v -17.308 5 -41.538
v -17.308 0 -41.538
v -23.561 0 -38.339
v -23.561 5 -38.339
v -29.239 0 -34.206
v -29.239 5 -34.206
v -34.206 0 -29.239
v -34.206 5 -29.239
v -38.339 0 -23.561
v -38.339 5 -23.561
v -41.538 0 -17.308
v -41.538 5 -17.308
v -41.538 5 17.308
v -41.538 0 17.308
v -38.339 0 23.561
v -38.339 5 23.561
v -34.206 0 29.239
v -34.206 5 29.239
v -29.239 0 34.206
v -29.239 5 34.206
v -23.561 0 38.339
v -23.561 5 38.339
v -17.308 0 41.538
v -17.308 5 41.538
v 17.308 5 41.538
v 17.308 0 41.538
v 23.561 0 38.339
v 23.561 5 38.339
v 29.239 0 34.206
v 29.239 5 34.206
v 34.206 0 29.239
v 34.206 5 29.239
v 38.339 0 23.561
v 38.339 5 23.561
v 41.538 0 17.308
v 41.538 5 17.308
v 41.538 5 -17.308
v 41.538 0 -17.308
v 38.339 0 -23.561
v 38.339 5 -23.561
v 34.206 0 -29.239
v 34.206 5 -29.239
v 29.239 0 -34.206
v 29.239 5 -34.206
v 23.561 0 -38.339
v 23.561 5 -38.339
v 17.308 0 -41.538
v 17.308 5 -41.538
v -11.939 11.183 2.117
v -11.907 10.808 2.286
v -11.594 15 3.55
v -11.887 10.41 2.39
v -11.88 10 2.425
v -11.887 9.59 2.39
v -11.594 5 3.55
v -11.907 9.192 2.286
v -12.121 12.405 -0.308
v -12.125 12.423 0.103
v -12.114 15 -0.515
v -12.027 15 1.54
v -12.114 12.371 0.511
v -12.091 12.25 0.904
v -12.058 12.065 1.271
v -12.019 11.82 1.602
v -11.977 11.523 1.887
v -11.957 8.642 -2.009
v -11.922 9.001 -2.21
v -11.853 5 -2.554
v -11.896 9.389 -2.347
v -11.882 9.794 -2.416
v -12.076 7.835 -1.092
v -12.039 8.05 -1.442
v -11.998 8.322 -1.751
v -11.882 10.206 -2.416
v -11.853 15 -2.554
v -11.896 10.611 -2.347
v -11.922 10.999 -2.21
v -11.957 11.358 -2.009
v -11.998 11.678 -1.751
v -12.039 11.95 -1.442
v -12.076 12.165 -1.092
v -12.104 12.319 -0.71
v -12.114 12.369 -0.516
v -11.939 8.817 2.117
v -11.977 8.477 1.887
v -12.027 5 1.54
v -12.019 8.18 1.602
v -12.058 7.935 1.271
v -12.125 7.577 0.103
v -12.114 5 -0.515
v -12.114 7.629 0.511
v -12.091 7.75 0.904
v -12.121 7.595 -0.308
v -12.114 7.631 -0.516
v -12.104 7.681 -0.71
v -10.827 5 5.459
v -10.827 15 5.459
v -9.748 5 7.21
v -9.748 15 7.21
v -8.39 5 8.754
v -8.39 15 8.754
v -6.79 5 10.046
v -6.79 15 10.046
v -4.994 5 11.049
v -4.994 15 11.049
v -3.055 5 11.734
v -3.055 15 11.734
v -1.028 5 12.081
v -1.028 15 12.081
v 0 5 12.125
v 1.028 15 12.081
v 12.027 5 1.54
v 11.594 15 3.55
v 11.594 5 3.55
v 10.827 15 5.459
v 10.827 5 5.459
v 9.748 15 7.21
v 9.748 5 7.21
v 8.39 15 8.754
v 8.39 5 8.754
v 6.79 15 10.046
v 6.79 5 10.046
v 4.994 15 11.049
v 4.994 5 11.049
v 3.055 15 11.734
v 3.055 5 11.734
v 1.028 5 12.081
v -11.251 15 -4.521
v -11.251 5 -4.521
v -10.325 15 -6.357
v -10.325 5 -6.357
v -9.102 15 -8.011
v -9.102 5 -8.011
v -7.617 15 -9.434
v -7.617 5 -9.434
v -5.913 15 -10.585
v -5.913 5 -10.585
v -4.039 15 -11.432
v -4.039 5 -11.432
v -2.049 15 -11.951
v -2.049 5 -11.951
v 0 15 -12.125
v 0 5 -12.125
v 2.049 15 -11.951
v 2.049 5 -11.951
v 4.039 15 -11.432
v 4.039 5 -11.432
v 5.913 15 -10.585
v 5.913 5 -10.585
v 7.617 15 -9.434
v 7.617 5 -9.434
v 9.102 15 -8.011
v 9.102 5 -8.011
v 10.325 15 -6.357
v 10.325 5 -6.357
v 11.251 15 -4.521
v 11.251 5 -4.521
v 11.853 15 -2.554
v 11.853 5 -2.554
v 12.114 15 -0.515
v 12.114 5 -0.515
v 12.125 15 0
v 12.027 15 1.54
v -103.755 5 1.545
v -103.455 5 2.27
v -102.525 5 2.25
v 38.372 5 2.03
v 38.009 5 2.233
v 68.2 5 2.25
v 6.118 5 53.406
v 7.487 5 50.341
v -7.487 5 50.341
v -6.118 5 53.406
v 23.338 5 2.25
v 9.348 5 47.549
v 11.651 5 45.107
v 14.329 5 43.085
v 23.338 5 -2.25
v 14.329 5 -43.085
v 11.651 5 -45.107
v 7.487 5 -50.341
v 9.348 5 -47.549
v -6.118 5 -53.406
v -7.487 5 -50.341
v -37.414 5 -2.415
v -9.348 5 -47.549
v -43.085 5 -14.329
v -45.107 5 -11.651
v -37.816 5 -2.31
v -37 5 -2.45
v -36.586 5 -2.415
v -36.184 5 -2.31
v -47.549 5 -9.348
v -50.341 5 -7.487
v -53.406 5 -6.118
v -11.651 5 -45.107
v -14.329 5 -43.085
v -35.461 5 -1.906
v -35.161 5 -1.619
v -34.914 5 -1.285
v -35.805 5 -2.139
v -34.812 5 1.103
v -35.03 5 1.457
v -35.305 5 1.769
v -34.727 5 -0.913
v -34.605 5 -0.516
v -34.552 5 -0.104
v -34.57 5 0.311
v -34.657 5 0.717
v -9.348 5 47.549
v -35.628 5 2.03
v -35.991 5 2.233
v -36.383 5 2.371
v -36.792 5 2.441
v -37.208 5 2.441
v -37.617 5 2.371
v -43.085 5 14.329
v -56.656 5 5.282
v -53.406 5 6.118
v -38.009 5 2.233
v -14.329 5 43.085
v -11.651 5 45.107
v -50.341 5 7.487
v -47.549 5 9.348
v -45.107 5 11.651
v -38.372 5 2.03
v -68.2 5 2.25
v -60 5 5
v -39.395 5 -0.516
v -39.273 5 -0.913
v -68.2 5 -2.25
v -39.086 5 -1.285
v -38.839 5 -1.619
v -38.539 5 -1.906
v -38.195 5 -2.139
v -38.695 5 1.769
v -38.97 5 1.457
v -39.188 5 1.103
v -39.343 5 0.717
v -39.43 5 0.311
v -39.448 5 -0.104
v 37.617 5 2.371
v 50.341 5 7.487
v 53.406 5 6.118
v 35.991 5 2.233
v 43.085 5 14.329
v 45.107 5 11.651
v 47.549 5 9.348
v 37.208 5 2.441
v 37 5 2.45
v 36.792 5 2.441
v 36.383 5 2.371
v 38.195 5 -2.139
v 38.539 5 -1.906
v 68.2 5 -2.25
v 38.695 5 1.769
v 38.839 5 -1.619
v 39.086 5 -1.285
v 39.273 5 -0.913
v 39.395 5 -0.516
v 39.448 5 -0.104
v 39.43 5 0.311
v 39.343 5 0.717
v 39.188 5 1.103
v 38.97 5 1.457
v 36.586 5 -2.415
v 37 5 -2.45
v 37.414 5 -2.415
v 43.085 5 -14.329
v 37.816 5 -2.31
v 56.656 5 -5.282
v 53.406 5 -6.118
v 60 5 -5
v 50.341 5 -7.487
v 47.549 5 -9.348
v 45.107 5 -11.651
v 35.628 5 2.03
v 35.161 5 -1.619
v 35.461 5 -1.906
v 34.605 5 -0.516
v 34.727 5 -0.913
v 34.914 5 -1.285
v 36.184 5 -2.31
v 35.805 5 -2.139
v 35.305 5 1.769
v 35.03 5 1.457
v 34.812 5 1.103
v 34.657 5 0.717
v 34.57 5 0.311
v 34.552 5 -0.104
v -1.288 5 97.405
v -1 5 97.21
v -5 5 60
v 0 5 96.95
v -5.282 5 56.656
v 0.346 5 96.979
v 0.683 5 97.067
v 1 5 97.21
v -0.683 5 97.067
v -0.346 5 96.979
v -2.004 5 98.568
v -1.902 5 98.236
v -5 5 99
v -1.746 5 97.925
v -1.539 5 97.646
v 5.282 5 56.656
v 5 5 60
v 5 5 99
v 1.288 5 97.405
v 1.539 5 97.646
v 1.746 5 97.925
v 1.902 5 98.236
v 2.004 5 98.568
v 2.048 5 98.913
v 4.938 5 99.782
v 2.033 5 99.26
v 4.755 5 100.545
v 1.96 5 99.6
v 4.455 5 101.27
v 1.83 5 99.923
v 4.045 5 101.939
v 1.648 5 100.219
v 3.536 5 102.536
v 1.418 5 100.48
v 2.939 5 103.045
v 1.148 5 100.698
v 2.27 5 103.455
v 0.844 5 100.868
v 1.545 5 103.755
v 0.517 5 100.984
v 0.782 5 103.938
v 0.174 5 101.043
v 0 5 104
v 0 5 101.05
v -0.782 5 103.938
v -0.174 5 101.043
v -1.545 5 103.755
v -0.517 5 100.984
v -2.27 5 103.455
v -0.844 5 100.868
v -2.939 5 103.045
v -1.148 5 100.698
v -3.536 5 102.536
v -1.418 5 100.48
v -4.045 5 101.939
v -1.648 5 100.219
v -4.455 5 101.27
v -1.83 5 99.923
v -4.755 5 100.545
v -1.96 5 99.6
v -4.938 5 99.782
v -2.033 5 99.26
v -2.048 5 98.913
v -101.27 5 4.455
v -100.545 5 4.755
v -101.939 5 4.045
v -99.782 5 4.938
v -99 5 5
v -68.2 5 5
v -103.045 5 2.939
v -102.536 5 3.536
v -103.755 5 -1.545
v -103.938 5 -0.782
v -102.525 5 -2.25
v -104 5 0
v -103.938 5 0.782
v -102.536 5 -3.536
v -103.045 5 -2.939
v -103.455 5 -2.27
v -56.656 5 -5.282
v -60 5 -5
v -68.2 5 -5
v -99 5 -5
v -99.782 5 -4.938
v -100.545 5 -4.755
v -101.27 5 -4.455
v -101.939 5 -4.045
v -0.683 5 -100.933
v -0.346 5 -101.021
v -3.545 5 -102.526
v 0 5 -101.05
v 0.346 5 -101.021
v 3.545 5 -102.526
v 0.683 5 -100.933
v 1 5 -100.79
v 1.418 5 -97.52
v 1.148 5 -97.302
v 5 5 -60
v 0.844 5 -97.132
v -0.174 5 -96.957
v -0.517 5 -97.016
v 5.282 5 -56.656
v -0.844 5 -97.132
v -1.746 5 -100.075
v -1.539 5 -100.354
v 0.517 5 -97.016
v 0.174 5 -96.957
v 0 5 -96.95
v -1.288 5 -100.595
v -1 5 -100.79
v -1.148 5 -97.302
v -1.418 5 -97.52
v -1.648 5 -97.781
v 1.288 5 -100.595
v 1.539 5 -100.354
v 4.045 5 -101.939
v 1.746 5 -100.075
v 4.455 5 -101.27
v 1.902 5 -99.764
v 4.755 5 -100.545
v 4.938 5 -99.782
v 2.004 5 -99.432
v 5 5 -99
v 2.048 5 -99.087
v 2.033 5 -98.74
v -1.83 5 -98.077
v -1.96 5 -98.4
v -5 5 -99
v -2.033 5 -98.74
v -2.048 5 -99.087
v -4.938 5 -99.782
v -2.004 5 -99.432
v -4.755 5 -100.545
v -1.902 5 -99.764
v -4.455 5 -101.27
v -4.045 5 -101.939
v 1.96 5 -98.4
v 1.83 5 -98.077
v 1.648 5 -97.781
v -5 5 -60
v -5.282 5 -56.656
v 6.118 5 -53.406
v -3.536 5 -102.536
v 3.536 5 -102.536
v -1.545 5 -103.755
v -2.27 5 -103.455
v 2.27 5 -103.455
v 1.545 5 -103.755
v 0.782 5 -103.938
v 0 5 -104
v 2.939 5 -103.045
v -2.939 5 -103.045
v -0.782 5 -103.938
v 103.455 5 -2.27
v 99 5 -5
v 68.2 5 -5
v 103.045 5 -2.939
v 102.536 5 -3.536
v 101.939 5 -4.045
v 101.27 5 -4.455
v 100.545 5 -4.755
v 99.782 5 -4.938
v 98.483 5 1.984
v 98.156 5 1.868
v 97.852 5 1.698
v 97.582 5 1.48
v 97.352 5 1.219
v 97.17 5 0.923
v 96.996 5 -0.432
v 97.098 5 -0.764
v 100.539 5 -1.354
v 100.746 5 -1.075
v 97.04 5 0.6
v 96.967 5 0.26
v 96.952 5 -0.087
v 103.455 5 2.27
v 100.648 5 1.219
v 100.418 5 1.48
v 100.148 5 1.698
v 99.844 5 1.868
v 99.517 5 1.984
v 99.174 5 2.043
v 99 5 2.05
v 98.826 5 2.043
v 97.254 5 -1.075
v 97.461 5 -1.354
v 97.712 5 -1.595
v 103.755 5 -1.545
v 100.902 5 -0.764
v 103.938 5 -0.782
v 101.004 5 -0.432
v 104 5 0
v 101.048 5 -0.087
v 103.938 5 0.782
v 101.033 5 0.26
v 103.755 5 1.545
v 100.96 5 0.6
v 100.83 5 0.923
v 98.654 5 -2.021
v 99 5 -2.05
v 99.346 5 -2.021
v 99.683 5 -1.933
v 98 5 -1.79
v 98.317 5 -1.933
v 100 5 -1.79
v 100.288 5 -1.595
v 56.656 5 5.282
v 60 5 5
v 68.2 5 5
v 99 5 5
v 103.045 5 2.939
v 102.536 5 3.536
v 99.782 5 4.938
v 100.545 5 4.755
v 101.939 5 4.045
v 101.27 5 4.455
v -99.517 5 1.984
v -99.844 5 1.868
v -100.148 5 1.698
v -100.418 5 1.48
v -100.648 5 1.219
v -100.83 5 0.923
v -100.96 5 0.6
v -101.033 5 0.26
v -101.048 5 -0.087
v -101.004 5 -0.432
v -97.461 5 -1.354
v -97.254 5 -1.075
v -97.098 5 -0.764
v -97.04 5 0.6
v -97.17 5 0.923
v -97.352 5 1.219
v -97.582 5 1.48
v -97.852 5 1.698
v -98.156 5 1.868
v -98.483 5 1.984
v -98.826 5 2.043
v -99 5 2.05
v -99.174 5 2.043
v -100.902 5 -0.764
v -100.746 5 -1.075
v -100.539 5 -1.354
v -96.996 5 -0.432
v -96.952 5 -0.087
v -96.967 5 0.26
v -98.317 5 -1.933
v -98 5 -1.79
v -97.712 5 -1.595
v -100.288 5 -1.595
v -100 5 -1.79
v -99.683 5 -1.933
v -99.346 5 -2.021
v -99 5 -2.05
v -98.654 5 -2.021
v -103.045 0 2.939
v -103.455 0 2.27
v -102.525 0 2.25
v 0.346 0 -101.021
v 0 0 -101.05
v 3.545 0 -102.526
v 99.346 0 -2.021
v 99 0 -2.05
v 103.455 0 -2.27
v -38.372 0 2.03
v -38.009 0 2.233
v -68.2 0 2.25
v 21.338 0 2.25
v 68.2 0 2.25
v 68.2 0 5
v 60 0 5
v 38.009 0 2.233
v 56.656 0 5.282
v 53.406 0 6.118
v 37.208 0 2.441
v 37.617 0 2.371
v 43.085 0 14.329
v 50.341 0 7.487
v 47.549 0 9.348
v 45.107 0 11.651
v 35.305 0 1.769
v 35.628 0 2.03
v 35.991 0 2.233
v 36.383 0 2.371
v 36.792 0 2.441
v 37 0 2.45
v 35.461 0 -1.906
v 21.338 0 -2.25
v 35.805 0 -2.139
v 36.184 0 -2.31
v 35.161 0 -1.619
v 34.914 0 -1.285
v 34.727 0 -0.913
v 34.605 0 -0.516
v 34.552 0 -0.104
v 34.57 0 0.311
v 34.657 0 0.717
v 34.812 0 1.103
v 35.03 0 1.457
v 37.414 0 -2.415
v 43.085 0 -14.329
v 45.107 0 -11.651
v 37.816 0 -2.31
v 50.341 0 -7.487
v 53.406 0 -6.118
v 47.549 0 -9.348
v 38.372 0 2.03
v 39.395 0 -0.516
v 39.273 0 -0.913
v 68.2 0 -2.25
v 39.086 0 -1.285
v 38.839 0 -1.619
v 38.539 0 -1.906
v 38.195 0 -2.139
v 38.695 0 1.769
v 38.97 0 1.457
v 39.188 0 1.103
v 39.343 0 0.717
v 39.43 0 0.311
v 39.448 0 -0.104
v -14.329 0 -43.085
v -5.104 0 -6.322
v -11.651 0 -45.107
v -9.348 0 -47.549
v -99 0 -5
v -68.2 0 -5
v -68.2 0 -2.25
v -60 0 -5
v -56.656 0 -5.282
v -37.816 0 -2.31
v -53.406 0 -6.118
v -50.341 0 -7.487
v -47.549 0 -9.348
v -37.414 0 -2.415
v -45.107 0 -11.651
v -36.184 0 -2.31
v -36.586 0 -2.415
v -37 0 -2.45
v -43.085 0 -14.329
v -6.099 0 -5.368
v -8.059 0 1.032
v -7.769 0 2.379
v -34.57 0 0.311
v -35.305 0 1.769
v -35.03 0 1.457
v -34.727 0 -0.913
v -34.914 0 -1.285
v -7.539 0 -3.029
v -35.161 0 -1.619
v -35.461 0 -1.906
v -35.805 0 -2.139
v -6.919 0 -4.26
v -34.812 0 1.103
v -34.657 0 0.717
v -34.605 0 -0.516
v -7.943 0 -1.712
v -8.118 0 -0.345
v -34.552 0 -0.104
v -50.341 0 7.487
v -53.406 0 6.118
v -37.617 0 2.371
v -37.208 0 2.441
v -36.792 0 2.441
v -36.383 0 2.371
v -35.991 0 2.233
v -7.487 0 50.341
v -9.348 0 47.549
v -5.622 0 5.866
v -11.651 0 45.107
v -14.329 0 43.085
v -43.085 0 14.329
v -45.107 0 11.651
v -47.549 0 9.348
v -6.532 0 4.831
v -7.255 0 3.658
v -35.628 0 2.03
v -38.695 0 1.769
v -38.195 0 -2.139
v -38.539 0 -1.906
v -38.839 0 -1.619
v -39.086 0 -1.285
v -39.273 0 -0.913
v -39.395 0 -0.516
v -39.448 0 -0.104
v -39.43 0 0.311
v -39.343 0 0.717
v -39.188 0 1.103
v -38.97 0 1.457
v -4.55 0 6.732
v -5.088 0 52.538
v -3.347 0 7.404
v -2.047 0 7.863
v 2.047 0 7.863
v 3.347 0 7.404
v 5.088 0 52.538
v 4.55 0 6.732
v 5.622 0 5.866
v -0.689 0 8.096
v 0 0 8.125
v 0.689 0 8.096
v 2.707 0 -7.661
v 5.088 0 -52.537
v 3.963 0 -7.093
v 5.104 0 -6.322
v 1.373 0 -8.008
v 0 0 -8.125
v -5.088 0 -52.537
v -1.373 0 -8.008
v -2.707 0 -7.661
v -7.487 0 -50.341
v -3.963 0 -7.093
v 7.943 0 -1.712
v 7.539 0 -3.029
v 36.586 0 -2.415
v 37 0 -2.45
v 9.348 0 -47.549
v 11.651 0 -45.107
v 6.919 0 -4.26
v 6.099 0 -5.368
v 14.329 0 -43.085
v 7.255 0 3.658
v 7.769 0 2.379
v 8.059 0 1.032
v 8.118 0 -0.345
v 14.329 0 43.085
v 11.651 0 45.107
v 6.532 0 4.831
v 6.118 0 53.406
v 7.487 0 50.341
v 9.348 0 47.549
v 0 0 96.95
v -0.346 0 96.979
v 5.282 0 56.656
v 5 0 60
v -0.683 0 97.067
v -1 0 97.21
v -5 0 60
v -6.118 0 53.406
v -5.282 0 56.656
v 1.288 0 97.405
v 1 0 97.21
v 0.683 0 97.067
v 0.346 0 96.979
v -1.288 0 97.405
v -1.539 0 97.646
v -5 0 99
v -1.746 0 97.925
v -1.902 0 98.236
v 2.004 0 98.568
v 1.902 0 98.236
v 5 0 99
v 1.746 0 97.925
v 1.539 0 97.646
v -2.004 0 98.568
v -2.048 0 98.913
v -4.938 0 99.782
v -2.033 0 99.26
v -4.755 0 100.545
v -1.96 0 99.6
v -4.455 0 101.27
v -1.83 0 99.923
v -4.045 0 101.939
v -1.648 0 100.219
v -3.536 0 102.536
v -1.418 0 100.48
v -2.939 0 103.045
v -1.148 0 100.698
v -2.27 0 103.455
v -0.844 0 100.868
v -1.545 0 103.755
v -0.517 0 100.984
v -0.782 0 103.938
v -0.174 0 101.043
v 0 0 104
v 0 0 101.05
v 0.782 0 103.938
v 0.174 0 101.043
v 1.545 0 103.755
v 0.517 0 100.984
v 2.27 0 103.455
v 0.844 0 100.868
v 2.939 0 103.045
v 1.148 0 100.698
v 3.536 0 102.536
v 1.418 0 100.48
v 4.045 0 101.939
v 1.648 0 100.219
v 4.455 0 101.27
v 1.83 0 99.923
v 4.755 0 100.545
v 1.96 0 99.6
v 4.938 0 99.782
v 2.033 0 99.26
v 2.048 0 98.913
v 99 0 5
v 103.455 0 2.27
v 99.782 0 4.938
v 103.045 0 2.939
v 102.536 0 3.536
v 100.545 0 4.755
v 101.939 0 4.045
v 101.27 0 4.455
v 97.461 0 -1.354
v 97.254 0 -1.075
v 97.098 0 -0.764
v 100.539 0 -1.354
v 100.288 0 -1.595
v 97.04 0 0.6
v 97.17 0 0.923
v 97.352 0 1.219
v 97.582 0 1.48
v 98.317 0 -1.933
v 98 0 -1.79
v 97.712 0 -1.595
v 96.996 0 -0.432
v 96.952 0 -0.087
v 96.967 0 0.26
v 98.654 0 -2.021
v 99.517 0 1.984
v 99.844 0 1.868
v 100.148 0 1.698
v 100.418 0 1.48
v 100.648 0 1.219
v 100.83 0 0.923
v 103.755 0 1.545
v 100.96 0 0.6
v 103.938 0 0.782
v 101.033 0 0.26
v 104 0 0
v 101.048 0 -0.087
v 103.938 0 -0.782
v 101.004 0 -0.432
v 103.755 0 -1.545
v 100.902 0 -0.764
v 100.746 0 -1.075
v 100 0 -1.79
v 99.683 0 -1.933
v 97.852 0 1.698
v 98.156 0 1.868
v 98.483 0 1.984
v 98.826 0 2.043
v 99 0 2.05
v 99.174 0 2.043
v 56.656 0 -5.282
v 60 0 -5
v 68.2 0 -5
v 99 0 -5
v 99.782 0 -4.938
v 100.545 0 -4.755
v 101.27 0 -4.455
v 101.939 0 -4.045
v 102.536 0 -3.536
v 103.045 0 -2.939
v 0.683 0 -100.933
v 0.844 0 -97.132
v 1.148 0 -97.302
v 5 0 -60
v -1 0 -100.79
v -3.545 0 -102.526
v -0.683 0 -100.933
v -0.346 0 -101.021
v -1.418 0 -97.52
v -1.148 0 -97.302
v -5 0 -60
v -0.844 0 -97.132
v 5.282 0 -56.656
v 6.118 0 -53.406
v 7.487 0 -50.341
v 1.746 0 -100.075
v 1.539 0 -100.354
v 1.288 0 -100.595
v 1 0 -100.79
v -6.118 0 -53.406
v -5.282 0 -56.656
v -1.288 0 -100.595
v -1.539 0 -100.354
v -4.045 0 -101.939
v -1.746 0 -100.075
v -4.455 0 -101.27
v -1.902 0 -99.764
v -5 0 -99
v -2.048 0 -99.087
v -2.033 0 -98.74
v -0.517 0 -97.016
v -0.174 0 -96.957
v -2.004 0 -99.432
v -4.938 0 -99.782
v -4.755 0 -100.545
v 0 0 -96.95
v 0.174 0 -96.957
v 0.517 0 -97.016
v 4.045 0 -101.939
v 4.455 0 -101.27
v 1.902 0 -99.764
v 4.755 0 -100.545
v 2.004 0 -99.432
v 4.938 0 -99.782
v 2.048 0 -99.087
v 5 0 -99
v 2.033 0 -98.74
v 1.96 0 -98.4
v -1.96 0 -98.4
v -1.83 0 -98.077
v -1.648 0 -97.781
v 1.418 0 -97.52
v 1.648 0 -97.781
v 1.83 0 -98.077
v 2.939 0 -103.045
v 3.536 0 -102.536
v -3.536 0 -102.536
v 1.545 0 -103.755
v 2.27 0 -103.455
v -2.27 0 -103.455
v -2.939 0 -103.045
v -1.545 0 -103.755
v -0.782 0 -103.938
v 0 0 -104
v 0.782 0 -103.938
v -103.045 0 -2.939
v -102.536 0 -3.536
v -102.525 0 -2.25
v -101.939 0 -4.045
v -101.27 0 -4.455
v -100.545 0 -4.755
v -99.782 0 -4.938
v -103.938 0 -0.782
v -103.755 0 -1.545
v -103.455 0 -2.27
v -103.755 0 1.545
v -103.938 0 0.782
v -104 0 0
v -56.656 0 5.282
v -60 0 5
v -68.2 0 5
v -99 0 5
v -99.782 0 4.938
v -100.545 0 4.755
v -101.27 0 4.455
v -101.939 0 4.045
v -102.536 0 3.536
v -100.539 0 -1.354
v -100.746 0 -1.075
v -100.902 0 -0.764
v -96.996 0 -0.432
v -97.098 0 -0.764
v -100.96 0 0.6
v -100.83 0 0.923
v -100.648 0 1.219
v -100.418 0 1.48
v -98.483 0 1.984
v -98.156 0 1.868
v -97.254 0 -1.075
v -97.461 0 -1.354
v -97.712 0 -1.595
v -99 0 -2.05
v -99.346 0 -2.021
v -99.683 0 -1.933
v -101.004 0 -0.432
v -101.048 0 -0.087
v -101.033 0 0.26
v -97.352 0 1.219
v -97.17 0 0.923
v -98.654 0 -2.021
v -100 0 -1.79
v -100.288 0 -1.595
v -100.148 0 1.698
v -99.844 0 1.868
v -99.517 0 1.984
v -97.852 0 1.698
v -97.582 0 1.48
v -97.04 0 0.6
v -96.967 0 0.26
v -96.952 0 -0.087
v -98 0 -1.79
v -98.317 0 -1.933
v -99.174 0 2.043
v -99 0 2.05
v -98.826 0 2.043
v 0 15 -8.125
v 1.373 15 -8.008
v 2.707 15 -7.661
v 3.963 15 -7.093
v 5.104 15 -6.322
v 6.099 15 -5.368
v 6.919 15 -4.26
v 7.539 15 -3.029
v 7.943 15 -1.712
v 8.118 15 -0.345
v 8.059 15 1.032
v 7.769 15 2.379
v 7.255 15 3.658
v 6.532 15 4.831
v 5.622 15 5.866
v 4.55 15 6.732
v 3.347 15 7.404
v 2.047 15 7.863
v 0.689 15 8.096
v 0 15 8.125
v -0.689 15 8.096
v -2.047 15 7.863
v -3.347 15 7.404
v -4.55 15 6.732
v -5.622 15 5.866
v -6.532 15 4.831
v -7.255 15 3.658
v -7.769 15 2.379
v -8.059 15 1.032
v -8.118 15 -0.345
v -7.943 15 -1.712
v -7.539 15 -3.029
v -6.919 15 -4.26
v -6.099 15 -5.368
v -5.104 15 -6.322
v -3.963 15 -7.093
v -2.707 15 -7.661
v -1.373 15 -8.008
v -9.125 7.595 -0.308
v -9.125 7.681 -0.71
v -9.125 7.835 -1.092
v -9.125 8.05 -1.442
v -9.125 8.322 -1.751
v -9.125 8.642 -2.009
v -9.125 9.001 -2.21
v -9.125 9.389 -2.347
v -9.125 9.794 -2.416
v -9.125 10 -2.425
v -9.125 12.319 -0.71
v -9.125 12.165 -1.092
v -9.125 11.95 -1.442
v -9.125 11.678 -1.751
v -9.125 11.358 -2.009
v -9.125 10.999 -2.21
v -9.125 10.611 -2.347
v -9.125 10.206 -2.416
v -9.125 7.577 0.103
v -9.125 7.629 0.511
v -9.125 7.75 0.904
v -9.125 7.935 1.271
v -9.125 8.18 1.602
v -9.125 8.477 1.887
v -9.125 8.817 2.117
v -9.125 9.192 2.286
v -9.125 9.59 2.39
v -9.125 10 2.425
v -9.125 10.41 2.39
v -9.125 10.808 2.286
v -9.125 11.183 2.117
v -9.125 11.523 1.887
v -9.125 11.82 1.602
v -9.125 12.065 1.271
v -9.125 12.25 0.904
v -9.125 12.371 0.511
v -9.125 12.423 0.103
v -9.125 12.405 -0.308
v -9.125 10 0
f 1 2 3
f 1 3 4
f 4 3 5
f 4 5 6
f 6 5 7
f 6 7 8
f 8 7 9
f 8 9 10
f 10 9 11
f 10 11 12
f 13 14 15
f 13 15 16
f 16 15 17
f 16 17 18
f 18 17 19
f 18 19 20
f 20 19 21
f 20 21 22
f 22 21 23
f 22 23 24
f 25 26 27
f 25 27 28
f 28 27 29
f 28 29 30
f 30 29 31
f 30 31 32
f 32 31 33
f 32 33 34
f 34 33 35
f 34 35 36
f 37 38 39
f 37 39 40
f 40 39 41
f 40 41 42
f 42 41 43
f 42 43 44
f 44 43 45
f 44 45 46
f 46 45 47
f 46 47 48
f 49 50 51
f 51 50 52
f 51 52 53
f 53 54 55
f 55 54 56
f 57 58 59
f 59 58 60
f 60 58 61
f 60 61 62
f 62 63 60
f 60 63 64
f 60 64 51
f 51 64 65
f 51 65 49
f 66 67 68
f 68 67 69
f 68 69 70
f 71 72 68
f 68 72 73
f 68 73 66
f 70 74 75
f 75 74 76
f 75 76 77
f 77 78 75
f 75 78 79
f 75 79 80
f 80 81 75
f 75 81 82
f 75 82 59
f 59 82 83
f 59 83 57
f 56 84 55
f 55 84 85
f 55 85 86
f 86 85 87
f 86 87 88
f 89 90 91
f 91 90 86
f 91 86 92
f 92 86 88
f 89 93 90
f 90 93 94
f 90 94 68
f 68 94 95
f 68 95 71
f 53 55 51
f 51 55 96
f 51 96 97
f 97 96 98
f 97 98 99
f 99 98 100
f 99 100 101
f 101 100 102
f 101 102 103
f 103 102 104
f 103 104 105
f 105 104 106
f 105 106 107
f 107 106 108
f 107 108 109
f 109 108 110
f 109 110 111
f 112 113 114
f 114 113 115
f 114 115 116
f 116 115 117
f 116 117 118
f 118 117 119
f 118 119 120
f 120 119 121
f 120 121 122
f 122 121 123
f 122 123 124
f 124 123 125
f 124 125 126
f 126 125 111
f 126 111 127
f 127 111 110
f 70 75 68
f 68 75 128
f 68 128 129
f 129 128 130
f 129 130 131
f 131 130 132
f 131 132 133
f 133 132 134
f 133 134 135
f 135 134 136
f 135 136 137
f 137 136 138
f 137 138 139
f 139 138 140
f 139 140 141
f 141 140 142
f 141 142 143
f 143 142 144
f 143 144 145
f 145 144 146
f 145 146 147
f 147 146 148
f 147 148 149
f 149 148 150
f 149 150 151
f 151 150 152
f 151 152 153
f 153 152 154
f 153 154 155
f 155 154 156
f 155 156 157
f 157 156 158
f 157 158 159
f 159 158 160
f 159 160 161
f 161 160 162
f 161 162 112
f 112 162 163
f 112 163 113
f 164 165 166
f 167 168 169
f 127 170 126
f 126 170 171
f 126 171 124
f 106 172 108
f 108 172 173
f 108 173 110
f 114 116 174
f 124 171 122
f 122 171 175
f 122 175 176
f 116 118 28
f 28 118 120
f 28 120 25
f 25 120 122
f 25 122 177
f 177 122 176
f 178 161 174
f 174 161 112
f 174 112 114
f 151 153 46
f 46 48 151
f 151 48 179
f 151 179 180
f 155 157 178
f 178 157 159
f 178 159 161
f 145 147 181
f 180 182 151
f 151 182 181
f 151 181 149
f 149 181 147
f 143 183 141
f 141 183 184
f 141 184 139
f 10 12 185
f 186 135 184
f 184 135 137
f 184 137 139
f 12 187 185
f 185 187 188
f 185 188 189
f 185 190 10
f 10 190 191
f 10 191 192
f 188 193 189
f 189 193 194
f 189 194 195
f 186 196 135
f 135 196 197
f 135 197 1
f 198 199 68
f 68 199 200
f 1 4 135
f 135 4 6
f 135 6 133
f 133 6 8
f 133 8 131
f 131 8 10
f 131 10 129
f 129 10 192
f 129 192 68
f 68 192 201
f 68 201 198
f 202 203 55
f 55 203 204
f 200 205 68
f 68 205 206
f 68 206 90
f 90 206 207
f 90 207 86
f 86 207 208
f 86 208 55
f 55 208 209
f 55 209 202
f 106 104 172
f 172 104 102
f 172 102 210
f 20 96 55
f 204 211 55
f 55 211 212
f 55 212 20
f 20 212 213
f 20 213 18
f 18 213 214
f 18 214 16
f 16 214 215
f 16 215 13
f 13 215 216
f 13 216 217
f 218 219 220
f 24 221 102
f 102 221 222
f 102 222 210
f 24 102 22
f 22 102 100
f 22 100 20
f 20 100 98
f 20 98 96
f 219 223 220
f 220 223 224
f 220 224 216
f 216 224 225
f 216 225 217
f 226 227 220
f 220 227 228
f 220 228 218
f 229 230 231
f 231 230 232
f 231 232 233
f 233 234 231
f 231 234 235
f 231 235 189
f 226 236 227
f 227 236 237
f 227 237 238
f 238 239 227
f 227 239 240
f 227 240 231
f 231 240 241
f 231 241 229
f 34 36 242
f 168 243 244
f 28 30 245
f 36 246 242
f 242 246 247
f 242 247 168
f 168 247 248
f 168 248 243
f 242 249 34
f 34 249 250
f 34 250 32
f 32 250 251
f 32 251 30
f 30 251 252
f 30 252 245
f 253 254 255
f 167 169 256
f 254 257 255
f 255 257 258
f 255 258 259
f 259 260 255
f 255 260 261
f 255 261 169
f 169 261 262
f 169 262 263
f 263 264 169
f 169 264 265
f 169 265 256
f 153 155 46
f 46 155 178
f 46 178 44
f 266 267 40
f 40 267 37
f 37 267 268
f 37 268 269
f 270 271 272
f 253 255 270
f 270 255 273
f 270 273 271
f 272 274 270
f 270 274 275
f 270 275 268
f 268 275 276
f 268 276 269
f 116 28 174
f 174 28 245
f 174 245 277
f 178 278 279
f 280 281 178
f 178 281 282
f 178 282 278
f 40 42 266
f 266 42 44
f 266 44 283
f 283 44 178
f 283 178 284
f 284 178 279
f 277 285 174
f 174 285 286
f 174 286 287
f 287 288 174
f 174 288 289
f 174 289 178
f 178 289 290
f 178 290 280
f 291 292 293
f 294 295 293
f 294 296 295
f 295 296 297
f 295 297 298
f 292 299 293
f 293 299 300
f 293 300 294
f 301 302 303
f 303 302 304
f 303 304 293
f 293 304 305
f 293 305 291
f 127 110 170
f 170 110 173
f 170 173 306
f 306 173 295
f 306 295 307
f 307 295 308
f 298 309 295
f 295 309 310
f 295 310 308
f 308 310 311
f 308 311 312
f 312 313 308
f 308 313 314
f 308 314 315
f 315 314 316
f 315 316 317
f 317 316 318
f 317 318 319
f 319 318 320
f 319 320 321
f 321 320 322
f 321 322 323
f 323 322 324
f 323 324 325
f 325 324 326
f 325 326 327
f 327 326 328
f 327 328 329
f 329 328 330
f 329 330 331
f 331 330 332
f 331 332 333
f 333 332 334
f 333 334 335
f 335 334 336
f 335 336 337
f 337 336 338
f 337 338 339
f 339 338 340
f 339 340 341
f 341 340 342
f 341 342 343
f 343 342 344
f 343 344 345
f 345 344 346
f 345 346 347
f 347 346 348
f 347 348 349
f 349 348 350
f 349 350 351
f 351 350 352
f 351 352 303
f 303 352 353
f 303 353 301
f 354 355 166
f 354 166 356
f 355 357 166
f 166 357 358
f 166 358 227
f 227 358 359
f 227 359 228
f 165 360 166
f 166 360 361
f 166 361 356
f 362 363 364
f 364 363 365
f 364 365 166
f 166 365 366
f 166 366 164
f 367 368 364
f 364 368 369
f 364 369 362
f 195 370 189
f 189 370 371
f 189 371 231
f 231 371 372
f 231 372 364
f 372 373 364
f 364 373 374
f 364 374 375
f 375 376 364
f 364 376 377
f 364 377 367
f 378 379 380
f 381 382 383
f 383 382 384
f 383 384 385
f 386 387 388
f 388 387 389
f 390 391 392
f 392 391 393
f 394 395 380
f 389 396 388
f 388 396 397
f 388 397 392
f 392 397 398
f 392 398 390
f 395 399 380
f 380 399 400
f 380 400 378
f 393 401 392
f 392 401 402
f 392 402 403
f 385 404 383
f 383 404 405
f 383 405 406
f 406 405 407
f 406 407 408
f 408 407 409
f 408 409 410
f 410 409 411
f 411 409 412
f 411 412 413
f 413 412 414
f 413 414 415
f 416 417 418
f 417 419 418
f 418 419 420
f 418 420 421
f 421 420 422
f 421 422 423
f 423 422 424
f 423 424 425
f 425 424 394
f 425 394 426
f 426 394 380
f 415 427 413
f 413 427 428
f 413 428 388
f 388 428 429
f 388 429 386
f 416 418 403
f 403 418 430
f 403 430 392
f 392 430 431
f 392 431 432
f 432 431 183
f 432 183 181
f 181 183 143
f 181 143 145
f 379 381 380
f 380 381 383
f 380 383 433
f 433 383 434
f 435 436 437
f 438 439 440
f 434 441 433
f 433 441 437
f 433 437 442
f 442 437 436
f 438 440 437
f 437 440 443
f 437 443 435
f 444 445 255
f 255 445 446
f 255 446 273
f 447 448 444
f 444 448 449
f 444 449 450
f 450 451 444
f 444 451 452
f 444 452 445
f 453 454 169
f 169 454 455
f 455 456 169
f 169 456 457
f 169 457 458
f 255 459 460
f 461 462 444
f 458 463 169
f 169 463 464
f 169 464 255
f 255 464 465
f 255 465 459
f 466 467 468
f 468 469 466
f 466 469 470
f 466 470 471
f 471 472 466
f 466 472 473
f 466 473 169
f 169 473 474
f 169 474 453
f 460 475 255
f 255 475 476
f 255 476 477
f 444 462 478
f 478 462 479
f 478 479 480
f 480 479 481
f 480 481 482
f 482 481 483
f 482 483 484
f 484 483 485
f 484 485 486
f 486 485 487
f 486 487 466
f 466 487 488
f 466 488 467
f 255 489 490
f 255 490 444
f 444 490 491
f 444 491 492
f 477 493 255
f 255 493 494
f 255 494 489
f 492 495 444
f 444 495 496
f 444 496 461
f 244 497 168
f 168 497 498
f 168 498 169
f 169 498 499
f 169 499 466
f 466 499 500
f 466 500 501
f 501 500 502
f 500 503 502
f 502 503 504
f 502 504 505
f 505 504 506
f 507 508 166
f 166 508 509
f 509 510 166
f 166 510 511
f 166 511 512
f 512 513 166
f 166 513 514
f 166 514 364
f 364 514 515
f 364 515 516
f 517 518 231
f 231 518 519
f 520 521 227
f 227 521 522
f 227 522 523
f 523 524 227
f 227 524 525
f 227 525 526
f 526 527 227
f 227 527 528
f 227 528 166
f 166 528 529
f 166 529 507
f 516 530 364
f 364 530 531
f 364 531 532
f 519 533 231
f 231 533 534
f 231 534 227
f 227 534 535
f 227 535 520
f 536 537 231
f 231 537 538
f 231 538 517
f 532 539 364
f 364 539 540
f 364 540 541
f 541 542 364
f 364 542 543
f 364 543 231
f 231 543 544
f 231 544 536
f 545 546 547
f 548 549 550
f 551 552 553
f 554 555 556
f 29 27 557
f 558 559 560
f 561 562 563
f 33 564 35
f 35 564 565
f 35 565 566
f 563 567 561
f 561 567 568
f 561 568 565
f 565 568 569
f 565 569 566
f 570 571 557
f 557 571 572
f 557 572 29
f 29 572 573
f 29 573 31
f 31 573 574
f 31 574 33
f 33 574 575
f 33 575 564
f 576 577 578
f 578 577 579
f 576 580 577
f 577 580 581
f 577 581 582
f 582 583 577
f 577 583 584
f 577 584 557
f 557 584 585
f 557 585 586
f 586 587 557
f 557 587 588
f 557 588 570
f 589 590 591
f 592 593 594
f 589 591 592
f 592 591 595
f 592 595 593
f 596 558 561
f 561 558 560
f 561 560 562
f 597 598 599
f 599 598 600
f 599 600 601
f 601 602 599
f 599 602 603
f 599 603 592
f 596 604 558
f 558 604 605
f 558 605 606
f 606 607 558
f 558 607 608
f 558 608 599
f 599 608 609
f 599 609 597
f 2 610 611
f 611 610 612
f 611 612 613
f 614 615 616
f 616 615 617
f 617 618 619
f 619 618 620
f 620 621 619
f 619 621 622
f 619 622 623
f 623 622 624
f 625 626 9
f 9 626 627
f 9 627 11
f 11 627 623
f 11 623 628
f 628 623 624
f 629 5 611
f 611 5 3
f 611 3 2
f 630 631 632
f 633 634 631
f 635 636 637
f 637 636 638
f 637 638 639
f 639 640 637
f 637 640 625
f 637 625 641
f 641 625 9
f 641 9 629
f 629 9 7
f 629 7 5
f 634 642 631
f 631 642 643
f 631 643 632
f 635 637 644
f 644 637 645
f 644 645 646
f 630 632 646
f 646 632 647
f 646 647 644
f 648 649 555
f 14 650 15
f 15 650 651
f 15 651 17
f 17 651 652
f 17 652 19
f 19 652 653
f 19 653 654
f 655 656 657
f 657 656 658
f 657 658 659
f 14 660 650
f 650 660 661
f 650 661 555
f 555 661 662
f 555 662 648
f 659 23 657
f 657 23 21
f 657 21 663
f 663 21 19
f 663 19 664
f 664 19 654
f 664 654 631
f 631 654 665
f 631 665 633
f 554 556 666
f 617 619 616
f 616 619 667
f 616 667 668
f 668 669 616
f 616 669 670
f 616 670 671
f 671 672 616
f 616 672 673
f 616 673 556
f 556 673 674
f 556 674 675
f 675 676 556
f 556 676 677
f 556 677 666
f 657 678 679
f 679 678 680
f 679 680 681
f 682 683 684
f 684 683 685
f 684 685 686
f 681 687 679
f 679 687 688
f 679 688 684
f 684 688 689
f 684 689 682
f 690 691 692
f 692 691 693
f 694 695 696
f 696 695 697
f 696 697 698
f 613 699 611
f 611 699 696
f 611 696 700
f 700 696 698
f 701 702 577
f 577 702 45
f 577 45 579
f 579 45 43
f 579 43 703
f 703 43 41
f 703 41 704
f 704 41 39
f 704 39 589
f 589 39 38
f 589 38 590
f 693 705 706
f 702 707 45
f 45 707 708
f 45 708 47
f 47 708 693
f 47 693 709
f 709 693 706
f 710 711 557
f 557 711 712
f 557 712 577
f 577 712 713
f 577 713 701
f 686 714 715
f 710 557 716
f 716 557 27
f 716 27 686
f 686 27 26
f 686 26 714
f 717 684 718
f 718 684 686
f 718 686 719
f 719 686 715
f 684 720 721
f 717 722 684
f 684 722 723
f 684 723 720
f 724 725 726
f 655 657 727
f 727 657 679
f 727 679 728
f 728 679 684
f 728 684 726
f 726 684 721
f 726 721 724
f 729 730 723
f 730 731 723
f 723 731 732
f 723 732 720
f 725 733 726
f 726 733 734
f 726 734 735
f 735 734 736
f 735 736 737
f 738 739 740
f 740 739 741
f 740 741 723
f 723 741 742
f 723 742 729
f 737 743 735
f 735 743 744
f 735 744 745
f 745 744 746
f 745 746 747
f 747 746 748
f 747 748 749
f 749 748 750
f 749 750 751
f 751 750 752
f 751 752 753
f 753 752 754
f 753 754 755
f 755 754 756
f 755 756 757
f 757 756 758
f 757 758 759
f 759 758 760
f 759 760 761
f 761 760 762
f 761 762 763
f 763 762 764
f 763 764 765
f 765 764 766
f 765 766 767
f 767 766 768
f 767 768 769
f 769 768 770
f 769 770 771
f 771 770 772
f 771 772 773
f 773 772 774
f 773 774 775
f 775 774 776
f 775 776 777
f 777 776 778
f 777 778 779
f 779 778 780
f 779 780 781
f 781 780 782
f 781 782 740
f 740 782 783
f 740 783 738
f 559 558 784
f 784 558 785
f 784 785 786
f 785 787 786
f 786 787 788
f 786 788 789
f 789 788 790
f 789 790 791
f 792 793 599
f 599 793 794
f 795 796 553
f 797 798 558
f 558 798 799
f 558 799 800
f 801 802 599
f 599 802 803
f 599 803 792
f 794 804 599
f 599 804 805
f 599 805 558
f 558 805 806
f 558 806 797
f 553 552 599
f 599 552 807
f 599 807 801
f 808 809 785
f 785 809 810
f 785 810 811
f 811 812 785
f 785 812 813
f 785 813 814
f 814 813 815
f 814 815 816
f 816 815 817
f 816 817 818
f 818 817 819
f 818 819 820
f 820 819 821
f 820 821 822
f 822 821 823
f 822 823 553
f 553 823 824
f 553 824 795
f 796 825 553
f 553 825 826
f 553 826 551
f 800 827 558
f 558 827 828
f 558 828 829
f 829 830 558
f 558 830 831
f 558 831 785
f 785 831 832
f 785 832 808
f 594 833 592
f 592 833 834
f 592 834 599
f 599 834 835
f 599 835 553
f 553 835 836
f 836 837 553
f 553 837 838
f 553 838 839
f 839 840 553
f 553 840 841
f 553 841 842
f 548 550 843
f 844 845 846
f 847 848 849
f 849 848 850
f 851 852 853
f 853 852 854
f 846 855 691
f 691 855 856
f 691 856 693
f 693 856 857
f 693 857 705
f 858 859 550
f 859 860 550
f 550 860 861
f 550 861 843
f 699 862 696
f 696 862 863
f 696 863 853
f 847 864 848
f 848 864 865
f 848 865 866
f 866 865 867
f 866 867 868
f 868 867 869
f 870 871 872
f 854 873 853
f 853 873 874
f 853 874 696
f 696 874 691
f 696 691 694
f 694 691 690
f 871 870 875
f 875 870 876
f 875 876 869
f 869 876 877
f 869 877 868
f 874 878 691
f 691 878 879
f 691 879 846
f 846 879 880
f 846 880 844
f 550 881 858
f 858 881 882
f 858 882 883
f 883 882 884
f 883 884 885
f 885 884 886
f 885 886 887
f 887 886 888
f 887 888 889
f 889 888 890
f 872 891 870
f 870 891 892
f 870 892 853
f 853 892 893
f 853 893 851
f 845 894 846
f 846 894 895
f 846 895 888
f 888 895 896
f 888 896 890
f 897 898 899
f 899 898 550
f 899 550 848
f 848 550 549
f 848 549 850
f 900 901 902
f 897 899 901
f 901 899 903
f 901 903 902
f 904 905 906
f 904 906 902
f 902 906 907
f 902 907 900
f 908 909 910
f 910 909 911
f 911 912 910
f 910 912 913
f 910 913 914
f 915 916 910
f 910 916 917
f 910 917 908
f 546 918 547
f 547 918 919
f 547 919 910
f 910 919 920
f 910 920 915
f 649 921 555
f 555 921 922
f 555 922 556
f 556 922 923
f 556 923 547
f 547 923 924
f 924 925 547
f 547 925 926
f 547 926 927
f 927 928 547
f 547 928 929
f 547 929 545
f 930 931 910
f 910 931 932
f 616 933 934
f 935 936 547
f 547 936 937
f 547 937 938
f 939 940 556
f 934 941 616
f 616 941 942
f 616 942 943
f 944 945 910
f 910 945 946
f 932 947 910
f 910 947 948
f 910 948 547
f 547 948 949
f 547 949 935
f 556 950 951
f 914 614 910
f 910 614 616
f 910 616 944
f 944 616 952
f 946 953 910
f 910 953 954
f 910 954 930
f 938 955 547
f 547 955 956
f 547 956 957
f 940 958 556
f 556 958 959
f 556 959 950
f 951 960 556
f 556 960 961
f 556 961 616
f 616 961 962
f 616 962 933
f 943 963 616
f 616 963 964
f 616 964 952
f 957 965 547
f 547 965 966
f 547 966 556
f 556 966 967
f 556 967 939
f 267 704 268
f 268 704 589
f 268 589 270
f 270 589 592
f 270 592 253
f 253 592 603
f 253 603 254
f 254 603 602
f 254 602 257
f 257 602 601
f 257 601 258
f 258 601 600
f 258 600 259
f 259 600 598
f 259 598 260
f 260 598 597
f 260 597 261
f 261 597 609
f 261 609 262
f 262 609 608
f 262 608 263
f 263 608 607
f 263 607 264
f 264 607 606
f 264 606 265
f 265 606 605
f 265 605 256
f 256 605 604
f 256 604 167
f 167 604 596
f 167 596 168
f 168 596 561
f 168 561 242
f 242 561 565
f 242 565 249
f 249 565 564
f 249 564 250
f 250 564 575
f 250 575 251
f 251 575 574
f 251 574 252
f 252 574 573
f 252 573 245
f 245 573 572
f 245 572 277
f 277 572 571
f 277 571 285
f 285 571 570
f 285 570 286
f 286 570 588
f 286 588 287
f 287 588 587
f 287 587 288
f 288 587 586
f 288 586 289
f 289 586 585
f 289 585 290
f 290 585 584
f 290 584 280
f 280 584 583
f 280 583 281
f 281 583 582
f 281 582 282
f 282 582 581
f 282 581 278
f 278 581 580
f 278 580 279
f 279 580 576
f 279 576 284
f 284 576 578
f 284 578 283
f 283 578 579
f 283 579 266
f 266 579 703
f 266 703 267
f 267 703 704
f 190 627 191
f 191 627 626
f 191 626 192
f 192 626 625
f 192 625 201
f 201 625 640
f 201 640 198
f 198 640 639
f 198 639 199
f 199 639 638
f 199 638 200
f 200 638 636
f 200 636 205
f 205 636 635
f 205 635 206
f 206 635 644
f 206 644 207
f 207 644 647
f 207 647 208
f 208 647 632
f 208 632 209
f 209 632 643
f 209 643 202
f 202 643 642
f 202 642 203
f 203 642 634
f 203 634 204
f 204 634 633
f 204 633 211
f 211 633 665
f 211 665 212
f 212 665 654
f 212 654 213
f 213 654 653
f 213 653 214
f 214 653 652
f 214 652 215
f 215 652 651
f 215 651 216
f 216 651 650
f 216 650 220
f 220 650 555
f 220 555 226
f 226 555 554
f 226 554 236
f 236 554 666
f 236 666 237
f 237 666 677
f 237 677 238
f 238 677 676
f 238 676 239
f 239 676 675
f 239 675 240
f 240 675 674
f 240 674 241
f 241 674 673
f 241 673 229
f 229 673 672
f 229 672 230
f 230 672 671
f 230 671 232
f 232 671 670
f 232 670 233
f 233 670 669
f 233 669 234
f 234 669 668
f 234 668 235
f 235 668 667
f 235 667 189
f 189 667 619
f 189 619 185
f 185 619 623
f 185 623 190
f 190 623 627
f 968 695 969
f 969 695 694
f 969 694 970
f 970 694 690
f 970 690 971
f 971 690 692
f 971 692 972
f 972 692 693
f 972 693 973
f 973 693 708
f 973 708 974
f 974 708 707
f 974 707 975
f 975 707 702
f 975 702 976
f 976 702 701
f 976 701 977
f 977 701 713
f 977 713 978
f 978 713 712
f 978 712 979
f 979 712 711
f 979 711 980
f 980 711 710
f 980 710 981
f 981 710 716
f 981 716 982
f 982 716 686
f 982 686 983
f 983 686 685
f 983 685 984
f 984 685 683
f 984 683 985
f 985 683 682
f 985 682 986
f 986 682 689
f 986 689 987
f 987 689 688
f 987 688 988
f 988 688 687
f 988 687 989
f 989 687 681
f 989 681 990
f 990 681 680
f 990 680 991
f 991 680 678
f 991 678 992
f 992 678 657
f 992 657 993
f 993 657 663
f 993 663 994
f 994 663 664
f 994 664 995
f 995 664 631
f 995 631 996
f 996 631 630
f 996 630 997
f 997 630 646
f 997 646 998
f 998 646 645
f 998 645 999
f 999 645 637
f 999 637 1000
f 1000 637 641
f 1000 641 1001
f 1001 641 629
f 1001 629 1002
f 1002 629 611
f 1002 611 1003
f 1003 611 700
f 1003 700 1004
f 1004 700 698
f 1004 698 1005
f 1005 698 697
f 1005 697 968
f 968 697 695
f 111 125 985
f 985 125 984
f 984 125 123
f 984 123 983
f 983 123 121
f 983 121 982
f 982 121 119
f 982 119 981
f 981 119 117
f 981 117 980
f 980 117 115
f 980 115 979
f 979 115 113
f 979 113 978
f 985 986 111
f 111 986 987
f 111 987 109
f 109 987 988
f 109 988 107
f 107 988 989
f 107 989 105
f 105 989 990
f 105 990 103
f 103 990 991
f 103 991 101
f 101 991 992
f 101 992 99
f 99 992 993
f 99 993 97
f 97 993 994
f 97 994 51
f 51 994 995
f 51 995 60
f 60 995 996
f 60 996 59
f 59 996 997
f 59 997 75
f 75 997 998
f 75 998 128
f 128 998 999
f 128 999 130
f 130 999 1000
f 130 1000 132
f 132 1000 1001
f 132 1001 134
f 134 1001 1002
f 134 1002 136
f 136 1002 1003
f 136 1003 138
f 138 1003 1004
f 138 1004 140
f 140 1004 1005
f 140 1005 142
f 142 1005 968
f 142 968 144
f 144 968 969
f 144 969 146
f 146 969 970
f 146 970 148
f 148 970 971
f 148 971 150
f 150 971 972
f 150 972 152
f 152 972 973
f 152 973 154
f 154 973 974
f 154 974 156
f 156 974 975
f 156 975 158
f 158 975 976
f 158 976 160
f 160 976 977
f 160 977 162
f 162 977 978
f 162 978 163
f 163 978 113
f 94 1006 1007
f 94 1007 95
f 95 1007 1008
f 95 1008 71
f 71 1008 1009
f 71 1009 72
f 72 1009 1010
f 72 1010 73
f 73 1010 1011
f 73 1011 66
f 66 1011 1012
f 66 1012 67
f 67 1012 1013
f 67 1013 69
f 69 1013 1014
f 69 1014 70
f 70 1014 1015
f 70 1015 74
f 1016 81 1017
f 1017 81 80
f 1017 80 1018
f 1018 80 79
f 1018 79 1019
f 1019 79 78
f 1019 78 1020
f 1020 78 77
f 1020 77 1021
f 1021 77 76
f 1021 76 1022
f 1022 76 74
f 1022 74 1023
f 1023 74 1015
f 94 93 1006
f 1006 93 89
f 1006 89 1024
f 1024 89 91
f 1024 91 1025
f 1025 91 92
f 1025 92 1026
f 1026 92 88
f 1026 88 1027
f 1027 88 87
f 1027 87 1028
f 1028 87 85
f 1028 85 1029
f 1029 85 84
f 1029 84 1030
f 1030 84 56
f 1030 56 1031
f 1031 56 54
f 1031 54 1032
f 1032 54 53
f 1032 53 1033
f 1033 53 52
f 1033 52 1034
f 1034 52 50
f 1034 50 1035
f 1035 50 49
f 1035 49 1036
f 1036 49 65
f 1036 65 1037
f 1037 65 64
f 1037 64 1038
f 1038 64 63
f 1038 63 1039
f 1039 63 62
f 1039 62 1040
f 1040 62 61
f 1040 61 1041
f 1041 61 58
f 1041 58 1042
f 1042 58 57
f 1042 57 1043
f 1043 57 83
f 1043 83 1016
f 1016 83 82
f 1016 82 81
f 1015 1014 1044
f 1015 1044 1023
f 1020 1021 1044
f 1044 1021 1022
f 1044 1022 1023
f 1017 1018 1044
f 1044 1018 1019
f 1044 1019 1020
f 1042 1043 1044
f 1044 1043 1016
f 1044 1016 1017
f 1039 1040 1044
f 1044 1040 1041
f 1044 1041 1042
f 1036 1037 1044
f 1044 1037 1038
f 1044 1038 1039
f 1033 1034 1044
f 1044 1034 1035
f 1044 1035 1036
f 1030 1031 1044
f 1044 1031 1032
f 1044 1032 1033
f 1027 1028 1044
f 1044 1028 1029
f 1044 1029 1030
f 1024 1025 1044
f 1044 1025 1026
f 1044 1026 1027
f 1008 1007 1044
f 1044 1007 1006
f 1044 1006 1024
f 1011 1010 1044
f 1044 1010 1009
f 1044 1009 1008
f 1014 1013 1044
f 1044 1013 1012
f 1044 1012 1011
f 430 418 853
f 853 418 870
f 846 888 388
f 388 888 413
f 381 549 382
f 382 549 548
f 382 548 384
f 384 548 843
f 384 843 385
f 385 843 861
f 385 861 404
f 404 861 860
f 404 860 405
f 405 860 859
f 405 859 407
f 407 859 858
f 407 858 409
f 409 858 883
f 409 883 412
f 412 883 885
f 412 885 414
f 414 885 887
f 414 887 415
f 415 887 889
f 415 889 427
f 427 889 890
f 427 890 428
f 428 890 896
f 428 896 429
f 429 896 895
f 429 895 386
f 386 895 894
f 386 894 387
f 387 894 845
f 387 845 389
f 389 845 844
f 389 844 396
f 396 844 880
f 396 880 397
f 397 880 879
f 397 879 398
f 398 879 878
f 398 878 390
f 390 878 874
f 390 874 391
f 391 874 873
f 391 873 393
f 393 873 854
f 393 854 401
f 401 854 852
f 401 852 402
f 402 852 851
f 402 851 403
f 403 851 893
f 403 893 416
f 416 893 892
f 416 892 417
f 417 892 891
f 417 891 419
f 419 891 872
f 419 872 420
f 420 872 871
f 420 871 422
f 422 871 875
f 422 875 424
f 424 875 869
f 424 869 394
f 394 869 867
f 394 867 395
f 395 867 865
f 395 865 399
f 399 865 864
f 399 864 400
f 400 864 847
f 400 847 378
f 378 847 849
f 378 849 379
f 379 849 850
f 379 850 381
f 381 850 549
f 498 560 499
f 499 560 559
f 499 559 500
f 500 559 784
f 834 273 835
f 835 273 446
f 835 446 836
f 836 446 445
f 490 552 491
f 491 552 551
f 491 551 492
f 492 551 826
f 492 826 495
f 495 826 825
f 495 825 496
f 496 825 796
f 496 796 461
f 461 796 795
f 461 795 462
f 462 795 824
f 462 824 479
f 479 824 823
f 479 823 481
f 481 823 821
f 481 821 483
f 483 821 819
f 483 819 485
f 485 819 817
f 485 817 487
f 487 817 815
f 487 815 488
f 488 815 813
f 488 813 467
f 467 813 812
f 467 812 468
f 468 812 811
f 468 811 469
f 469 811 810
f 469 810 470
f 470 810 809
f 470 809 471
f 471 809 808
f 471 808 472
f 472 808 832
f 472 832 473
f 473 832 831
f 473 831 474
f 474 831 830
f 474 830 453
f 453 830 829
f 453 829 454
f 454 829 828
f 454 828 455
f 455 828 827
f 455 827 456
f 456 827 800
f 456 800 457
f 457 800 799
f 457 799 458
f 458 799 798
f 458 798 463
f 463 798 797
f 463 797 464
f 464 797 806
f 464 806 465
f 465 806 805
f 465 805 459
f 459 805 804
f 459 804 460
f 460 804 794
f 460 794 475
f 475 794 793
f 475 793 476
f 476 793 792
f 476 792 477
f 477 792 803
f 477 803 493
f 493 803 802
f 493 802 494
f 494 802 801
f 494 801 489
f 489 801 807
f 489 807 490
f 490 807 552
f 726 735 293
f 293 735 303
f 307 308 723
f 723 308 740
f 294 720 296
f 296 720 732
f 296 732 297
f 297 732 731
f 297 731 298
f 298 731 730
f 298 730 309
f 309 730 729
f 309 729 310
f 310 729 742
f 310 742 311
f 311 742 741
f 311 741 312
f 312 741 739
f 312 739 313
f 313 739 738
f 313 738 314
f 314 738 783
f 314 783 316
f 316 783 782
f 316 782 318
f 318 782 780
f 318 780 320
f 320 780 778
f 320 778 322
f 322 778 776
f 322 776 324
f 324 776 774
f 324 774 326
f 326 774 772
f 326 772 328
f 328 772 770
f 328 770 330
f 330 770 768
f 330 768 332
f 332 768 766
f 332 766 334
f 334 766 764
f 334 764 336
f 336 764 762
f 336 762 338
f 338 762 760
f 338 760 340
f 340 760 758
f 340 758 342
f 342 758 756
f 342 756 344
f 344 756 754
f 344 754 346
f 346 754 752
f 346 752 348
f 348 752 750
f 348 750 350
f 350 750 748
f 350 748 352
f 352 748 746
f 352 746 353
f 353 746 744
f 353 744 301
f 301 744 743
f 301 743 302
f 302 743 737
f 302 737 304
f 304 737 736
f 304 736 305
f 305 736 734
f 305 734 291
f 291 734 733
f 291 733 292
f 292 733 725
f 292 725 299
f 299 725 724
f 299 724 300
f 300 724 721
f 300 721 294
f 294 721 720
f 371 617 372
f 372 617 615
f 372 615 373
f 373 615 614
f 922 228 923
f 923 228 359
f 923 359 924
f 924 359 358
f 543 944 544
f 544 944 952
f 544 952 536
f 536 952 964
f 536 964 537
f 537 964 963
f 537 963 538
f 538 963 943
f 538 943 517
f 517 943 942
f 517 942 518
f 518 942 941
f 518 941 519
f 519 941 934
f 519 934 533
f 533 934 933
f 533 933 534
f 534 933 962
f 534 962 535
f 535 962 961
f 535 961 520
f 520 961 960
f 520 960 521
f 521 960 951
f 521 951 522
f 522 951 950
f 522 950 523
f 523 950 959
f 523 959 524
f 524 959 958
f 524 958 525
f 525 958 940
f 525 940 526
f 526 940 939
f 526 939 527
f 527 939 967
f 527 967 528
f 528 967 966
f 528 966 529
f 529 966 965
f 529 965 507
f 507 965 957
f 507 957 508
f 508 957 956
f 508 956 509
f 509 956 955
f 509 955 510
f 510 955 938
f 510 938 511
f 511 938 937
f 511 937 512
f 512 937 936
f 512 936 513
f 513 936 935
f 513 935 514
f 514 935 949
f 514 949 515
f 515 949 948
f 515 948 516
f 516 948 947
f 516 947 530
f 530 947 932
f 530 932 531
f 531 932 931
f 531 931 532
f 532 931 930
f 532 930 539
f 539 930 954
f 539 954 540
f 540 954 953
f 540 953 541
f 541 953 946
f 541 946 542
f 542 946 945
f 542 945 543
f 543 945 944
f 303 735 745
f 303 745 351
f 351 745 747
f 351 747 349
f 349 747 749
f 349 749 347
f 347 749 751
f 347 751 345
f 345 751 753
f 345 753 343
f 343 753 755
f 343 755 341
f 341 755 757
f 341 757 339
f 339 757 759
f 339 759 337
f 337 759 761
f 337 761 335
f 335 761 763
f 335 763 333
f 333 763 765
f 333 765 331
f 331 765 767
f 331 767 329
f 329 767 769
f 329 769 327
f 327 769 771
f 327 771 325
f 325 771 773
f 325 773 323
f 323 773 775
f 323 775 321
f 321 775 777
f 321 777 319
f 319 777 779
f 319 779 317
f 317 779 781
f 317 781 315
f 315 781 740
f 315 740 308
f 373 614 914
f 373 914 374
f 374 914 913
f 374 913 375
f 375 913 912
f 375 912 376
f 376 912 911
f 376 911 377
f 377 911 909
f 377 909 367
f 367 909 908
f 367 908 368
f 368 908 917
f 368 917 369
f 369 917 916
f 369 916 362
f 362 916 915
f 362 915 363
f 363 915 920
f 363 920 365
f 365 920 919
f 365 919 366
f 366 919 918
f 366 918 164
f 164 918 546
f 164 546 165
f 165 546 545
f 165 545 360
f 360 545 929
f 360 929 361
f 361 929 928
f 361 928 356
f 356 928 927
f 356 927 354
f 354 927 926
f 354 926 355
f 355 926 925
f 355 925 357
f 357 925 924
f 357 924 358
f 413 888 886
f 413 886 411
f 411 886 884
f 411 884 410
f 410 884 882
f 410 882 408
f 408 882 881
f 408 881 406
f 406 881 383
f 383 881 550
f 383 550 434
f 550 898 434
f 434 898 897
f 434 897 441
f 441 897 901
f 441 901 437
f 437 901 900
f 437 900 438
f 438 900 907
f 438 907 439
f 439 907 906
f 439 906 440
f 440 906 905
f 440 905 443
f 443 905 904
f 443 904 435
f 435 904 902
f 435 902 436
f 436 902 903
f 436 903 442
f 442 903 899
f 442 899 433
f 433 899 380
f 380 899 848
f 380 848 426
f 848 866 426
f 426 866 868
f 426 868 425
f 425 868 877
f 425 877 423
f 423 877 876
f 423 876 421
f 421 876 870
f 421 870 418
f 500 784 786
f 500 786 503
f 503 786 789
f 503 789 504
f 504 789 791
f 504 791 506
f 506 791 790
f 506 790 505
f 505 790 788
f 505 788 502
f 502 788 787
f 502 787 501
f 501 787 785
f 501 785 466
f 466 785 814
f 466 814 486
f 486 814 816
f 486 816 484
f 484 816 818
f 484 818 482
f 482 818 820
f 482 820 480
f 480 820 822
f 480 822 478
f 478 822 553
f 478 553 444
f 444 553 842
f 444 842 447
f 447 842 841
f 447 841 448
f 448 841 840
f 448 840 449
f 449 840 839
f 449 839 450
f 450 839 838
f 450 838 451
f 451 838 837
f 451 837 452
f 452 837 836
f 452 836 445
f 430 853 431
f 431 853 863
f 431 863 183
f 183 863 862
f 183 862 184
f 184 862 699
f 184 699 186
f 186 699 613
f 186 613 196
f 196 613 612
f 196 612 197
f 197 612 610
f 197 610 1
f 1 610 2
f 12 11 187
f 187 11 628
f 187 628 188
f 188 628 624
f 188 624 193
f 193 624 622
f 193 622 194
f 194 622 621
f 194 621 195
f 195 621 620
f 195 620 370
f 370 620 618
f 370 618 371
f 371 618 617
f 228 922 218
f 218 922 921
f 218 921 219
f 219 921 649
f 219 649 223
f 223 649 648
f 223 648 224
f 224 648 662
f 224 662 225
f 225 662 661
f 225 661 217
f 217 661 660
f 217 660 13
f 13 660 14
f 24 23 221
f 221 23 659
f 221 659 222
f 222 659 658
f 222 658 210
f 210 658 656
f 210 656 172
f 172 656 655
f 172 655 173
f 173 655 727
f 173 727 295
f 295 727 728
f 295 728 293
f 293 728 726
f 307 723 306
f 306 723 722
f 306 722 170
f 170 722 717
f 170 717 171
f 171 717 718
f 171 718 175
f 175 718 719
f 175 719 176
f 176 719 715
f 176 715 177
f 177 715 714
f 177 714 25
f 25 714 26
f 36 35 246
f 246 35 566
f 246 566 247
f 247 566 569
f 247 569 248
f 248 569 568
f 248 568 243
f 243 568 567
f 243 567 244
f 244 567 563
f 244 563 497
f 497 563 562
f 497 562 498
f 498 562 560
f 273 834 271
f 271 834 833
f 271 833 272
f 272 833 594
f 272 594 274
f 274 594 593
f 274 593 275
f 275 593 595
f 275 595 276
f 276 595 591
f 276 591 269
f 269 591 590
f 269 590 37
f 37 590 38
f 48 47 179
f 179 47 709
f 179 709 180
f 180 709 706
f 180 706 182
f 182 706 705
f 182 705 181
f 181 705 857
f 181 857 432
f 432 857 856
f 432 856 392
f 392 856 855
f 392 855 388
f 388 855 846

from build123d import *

# Parameters (mm, degrees)
CROQUIS1_R              = 45
CROQUIS1_R_2            = 2.45
CROQUIS1_R_3            = 8.125
SALIENTE_EXTRUIR1_DEPTH = 5
CROQUIS1_2_R            = 12.125
CROQUIS1_2_R_2          = 8.125
EXTRUIR_L_MINA1_DEPTH   = 15
CROQUIS2_R              = 2.425
CORTAR_EXTRUIR2_DEPTH   = 3
CROQUIS3_W              = 59.27864045
CROQUIS3_H              = 10
CROQUIS3_R              = 2.05
CROQUIS3_W_2            = 10
CROQUIS3_H_2            = 59.27864045
SALIENTE_EXTRUIR2_DEPTH = 5
REDONDEO1_R             = 5
REDONDEO2_R             = 20


with BuildPart() as part:
    # Croquis1 → Saliente-Extruir1 (new body)
    with BuildSketch(Plane(origin=(0, 0, 0), x_dir=(1, 0, 0), z_dir=(0, 1, 0))):
        with Locations(Location((0, 0, 0), (0, 0, 270))):
            Circle(CROQUIS1_R)
        with Locations(Location((37, 0, 0), (0, 0, 270))):
            Circle(CROQUIS1_R_2, mode=Mode.SUBTRACT)
        with Locations(Location((-37, 0, 0), (0, 0, 90))):
            Circle(CROQUIS1_R_2, mode=Mode.SUBTRACT)
        with Locations(Location((0, 0, 0), (0, 0, 270))):
            Circle(CROQUIS1_R_3, mode=Mode.SUBTRACT)
    extrude(amount=SALIENTE_EXTRUIR1_DEPTH)

    # Croquis1<2> → Extruir-Lámina1 (add)
    with BuildSketch(Plane(origin=(0, 0, 0), x_dir=(1, 0, 0), z_dir=(0, 1, 0))):
        Circle(CROQUIS1_2_R)
        Circle(CROQUIS1_2_R_2, mode=Mode.SUBTRACT)
    extrude(amount=EXTRUIR_L_MINA1_DEPTH)

    # Croquis2 → Cortar-Extruir2 (cut)
    with BuildSketch(Plane(origin=(-12.125, 0, -11.125), x_dir=(0, 0, -1), z_dir=(1, 0, 0))):
        with Locations(Location((-11.125, 10, 0), (0, 0, 180))):
            Circle(CROQUIS2_R)
    extrude(amount=CORTAR_EXTRUIR2_DEPTH, mode=Mode.SUBTRACT)

    # Croquis3 → Saliente-Extruir2 (add)
    # profile 1 of 4: a face of its own
    with BuildSketch(Plane(origin=(0, 0, 0), x_dir=(1, 0, 0), z_dir=(0, 1, 0))):
        with Locations((74.360679775, 0)):
            Rectangle(CROQUIS3_W, CROQUIS3_H)
        with Locations(Location((99, 0, 0), (0, 0, 270))):
            Circle(CROQUIS3_R, mode=Mode.SUBTRACT)
    # profile 2 of 4: a face of its own
    with BuildSketch(Plane(origin=(0, 0, 0), x_dir=(1, 0, 0), z_dir=(0, 1, 0))):
        with Locations((0, 74.360679775)):
            Rectangle(CROQUIS3_W_2, CROQUIS3_H_2)
        with Locations(Location((0, 99, 0), (0, 0, 270))):
            Circle(CROQUIS3_R, mode=Mode.SUBTRACT)
    # profile 3 of 4: a face of its own
    with BuildSketch(Plane(origin=(0, 0, 0), x_dir=(1, 0, 0), z_dir=(0, 1, 0))):
        with Locations((0, -74.360679775)):
            Rectangle(CROQUIS3_W_2, CROQUIS3_H_2)
        with Locations(Location((0, -99, 0), (0, 0, 270))):
            Circle(CROQUIS3_R, mode=Mode.SUBTRACT)
    # profile 4 of 4: a face of its own
    with BuildSketch(Plane(origin=(0, 0, 0), x_dir=(1, 0, 0), z_dir=(0, 1, 0))):
        with Locations((-74.360679775, 0)):
            Rectangle(CROQUIS3_W, CROQUIS3_H)
        with Locations(Location((-99, 0, 0), (0, 0, 270))):
            Circle(CROQUIS3_R, mode=Mode.SUBTRACT)
    extrude(amount=SALIENTE_EXTRUIR2_DEPTH)

    # Redondeo1
    redondeo1_edges = [part.edges().sort_by_distance(p)[0] for p in [
        (5, 2.5, 104),
        (-5, 2.5, 104),
        (-104, 2.5, 5),
        (-104, 2.5, -5),
        (-5, 2.5, -104),
        (5, 2.5, -104),
        (104, 2.5, -5),
        (104, 2.5, 5),
    ]]
    fillet(redondeo1_edges, radius=REDONDEO1_R - 0.0001)  # a hair under: the kernel refuses the full size

    # Redondeo2
    redondeo2_edges = [part.edges().sort_by_distance(p)[0] for p in [
        (-5, 2.5, -44.72135955),
        (5, 2.5, -44.72135955),
        (44.72135955, 2.5, -5),
        (44.72135955, 2.5, 5),
        (5, 2.5, 44.72135955),
        (-5, 2.5, 44.72135955),
        (-44.72135955, 2.5, 5),
        (-44.72135955, 2.5, -5),
    ]]
    fillet(redondeo2_edges, radius=REDONDEO2_R)


solid = part.part
